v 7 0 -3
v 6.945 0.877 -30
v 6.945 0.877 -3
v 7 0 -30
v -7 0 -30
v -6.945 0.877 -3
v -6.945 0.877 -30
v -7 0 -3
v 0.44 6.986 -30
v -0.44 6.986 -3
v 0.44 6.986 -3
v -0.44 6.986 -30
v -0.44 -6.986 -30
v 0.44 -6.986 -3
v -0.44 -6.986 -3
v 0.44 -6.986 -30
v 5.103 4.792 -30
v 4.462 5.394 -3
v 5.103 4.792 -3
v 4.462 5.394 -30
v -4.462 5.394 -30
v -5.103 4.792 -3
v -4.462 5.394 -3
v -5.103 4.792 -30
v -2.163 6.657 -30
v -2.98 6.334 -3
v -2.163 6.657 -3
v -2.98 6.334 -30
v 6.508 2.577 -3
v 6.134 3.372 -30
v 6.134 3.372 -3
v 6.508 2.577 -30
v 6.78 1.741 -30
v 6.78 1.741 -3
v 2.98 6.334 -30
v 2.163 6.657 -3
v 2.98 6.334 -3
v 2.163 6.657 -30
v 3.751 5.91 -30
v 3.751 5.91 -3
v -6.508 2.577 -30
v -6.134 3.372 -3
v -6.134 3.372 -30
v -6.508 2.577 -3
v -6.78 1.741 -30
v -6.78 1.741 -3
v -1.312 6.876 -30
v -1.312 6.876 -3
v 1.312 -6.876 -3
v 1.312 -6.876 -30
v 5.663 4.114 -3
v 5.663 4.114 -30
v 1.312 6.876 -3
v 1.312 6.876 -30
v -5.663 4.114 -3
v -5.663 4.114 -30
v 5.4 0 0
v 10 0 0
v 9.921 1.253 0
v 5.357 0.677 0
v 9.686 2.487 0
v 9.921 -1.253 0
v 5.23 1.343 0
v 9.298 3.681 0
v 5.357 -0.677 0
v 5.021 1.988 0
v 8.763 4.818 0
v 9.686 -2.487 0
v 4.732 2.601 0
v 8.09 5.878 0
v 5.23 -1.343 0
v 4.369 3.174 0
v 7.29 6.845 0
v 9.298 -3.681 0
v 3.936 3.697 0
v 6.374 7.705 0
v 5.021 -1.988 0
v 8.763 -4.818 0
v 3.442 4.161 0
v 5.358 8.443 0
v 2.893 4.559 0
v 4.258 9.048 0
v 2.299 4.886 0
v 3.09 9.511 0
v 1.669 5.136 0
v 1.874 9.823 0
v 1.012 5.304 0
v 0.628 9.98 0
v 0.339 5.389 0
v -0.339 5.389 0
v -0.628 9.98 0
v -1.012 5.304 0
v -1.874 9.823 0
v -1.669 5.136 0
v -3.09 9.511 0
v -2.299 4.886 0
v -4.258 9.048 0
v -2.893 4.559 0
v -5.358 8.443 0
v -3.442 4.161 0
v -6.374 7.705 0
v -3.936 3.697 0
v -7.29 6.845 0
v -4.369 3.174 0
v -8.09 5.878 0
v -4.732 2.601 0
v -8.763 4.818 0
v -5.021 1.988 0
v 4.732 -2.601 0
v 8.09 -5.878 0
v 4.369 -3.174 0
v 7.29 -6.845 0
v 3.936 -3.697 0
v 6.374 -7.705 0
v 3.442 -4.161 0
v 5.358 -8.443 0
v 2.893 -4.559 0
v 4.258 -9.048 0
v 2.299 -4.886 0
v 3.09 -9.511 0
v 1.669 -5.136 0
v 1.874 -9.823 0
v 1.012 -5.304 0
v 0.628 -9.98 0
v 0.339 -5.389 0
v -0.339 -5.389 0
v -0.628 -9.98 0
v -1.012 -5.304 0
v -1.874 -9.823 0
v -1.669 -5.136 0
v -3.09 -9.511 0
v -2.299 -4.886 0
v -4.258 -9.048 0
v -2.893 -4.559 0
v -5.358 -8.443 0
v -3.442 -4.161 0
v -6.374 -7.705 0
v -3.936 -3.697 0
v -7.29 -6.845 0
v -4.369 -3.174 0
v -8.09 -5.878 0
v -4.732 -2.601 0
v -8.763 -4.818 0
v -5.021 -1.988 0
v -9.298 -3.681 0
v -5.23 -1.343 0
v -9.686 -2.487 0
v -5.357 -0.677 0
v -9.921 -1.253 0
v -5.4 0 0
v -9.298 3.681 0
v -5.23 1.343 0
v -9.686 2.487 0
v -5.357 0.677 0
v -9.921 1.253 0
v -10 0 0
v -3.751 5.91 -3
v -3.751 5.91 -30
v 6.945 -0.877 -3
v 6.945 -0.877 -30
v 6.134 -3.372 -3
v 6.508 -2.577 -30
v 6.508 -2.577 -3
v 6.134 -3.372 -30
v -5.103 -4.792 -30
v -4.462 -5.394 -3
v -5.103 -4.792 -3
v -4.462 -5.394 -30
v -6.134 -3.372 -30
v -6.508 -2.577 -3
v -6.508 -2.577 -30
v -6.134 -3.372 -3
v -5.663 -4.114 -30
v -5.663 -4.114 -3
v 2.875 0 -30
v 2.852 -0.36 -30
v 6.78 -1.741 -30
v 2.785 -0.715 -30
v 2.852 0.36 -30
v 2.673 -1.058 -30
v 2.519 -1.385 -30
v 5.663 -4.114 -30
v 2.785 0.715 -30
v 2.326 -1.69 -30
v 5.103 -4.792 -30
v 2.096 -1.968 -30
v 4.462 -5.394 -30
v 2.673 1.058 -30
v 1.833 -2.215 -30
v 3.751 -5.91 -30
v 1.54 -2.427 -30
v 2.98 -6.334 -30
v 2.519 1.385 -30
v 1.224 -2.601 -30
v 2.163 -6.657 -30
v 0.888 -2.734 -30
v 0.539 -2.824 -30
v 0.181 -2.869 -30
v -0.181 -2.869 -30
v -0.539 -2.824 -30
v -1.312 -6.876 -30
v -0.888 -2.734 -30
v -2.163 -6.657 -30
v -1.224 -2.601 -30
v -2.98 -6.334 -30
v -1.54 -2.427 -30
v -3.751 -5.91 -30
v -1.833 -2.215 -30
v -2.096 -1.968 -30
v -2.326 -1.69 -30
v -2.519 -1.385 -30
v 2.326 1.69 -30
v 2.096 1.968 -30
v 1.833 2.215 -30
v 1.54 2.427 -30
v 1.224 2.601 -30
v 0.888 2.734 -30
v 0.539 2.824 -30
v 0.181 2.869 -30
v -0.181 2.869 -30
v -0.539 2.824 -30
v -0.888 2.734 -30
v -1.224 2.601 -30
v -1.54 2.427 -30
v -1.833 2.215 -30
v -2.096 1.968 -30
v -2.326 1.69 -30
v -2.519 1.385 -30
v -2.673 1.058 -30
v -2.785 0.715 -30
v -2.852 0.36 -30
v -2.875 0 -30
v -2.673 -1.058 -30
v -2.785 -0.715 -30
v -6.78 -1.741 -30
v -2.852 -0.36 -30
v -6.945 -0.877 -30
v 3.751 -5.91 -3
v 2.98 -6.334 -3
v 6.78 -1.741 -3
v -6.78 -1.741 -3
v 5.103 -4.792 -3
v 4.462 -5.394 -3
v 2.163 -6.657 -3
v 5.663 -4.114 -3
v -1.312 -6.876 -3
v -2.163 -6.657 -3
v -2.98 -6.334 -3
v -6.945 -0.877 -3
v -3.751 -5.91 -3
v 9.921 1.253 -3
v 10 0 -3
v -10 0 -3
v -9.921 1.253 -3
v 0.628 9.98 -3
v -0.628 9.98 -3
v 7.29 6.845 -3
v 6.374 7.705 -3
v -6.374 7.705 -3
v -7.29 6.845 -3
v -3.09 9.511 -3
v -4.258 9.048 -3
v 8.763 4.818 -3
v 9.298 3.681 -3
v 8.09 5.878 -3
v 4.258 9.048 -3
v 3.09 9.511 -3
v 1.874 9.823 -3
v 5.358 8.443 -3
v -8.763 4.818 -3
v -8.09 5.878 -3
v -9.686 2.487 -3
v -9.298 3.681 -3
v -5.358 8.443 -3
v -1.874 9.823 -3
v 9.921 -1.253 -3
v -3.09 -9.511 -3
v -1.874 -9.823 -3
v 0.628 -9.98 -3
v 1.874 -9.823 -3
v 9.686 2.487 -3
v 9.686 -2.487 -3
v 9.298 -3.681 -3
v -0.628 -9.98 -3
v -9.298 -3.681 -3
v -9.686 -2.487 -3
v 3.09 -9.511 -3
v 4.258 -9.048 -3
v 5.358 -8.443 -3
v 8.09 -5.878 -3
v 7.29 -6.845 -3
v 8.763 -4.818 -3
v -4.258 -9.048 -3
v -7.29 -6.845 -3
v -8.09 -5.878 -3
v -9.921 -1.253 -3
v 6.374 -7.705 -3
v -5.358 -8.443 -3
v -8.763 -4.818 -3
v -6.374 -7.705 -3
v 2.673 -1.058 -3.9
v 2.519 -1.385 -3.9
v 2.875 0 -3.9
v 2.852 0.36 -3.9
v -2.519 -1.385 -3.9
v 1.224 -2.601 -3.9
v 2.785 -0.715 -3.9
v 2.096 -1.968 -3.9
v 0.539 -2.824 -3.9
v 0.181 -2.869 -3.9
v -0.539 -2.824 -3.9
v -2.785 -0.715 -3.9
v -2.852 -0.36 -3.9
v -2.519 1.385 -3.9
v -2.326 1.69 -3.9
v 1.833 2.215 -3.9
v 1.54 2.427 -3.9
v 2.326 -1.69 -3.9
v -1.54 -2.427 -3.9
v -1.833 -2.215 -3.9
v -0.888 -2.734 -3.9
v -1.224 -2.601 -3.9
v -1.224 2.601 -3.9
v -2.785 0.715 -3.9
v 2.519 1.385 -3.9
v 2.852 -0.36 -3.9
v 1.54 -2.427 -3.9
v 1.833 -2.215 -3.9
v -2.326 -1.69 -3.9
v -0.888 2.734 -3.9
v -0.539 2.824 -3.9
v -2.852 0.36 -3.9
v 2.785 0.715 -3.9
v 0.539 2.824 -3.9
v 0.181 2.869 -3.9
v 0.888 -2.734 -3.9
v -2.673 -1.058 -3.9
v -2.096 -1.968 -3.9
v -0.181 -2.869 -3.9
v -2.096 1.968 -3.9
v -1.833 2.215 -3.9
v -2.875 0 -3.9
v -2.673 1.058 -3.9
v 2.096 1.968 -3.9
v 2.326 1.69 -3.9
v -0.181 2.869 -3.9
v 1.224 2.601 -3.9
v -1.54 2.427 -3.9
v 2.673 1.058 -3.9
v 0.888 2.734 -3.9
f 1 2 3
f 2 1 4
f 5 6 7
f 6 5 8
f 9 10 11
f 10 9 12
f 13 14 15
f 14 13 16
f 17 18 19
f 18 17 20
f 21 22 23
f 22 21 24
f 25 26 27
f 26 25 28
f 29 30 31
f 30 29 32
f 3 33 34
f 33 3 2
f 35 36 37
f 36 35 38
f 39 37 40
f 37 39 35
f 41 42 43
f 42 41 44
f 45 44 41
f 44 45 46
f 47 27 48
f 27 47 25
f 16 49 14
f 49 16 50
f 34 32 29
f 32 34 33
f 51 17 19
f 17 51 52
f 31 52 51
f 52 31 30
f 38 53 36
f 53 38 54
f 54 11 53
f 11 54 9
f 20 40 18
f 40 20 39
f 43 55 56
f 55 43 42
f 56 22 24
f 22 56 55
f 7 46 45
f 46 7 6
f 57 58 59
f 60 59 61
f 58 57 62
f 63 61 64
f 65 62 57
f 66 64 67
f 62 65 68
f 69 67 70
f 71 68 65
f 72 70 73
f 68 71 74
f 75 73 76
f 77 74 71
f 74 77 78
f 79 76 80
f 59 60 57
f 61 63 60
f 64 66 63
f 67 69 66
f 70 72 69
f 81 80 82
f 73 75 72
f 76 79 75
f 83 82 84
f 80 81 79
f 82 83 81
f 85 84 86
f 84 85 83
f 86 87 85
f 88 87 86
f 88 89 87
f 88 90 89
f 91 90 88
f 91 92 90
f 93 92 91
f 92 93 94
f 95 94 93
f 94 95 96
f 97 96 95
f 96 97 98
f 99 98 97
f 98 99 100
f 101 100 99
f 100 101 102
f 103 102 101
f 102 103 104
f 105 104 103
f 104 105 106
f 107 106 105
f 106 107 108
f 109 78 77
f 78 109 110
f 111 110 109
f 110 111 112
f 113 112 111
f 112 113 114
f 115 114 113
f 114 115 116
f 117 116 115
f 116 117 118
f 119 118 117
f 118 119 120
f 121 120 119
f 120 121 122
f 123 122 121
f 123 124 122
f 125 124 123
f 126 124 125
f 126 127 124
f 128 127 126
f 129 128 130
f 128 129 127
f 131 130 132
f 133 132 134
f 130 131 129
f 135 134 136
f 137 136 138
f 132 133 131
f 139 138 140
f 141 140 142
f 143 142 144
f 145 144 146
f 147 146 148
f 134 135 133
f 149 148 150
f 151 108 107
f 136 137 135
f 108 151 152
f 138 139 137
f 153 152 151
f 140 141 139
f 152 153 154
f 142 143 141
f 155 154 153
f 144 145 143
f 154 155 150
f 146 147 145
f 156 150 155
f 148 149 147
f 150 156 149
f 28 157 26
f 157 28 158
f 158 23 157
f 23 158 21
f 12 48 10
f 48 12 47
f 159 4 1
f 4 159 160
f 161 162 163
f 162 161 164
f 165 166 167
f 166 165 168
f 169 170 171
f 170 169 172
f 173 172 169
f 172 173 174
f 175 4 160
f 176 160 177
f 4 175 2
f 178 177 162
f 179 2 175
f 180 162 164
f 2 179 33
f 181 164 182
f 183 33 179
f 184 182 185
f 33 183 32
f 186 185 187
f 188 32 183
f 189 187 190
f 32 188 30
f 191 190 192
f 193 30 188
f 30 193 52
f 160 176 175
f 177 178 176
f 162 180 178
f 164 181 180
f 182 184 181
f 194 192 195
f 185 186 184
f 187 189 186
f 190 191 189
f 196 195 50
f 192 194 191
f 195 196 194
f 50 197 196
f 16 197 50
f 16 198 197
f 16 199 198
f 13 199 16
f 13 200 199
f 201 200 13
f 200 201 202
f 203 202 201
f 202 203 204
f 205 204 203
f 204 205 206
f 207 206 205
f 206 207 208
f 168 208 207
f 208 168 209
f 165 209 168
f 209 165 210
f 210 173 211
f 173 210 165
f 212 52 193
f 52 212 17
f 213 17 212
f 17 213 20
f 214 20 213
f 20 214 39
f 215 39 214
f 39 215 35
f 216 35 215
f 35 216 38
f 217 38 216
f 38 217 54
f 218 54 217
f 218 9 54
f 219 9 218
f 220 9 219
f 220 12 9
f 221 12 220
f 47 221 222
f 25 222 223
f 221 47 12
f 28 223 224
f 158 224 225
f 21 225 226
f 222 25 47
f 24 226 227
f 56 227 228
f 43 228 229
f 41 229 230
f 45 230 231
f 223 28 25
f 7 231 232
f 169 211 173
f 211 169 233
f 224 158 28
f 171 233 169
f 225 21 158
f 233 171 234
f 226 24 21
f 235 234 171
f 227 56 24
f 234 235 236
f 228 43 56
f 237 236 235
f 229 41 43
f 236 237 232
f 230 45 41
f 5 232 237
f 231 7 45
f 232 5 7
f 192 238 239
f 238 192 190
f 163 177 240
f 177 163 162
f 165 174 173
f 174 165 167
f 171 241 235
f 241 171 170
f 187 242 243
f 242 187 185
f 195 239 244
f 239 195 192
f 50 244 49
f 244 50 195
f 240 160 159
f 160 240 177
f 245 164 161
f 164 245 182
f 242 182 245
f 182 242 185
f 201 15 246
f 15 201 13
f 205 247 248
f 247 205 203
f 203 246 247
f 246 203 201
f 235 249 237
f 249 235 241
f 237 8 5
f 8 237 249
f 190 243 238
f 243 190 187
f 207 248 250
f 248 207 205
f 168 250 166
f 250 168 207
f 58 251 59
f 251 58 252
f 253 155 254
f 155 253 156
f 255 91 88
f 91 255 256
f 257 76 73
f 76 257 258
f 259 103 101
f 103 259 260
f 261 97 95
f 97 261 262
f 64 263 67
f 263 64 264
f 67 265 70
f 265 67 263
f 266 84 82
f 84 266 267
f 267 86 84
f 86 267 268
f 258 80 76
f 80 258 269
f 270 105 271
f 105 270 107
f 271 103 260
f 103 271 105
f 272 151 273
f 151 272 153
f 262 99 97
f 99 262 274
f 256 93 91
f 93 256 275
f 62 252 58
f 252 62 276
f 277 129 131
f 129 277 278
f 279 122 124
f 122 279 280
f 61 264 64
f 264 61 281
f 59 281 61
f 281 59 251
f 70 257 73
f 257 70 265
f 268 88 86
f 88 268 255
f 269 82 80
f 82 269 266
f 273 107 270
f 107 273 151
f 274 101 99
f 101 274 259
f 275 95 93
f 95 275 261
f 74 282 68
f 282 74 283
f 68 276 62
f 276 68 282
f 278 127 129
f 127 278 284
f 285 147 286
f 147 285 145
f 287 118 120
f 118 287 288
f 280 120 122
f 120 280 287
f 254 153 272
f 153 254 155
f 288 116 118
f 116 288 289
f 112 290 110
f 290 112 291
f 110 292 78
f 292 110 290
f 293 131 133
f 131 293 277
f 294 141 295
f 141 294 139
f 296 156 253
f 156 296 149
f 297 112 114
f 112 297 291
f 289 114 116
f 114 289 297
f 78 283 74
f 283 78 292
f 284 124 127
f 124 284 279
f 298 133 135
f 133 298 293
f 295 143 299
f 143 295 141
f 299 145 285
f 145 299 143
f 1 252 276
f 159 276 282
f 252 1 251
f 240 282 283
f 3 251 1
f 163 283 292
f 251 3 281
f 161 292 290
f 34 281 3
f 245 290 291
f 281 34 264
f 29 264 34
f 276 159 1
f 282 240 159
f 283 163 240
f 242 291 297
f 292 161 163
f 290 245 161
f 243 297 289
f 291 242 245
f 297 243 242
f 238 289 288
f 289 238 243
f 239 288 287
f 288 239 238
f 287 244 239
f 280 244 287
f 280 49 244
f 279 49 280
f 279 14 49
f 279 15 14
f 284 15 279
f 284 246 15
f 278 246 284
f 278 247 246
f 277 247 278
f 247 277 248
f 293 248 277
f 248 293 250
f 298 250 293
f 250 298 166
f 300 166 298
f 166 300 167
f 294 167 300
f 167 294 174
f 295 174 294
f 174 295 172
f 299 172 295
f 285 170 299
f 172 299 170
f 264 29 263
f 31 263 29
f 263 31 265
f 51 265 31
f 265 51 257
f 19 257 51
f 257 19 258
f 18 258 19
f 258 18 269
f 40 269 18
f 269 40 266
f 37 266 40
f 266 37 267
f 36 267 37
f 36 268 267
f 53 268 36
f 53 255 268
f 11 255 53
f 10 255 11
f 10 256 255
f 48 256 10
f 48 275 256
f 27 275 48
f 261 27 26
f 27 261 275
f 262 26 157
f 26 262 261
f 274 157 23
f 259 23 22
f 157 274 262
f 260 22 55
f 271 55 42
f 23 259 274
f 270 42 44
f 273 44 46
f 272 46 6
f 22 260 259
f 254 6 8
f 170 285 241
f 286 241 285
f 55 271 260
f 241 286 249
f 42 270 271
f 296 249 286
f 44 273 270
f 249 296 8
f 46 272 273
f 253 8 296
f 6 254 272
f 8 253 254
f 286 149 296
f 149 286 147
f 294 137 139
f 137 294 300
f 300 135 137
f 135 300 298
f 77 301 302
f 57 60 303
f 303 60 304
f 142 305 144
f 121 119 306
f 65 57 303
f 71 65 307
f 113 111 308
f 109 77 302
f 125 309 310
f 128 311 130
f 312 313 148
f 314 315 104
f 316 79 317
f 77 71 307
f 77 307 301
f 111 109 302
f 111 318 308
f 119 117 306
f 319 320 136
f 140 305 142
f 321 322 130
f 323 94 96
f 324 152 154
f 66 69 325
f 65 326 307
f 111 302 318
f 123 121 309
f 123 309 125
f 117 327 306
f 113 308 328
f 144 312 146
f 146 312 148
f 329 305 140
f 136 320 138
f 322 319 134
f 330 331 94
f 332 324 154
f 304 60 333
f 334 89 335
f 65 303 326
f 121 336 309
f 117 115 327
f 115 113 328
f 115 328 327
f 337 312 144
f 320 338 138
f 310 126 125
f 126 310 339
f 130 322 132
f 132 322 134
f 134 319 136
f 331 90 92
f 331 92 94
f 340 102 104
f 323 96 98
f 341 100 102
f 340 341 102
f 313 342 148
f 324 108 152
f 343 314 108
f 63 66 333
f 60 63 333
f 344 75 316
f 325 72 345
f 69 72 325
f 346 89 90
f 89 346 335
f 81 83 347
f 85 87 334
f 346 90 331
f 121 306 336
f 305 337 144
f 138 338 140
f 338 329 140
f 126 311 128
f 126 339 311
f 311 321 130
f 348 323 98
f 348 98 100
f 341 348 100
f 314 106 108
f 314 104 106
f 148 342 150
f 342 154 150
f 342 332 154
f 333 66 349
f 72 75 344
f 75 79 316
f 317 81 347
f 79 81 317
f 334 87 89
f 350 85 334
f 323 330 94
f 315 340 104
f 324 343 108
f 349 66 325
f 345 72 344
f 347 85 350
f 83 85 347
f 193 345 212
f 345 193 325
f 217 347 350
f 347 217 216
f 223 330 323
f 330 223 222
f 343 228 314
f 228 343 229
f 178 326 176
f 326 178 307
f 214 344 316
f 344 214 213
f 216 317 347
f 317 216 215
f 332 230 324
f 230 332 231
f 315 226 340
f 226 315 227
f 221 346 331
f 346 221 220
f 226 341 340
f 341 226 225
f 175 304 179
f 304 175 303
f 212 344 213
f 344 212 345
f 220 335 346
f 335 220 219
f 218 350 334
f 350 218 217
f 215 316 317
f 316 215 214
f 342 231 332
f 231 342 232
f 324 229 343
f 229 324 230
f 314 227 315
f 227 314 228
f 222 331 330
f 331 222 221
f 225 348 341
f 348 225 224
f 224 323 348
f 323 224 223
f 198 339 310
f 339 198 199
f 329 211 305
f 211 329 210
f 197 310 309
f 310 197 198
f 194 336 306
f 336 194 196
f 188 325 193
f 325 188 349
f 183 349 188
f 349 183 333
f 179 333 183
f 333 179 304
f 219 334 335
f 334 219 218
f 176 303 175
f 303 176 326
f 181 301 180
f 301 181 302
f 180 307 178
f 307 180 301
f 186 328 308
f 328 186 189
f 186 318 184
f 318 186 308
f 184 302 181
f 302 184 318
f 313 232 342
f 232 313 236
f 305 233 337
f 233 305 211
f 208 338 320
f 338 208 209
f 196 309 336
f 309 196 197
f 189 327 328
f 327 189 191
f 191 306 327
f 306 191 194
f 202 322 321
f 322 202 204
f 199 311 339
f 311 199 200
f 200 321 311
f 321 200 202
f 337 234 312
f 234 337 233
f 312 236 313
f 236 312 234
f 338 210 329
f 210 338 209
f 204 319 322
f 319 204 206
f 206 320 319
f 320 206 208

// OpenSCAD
$fn = 50;


difference() {
	union() {
		translate(v = [0, 0, -30.0000000000]) {
			cylinder(h = 30, r = 7.0000000000);
		}
		translate(v = [0, 0, -3.0000000000]) {
			cylinder(h = 3, r = 10.0000000000);
		}
	}
	union() {
		translate(v = [0, 0, 0]) {
			rotate(a = [0, 0, 0]) {
				difference() {
					union() {
						#translate(v = [0, 0, -30.0000000000]) {
							cylinder(h = 30, r = 2.6000000000);
						}
						#translate(v = [0, 0, -3.9000000000]) {
							cylinder(h = 3.9000000000, r = 7.0000000000, r1 = 2.8750000000, r2 = 5.4000000000);
						}
						#translate(v = [0, 0, -30.0000000000]) {
							cylinder(h = 30, r = 2.8750000000);
						}
						#translate(v = [0, 0, -30.0000000000]) {
							cylinder(h = 30, r = 2.6000000000);
						}
					}
					union();
				}
			}
		}
	}
}
